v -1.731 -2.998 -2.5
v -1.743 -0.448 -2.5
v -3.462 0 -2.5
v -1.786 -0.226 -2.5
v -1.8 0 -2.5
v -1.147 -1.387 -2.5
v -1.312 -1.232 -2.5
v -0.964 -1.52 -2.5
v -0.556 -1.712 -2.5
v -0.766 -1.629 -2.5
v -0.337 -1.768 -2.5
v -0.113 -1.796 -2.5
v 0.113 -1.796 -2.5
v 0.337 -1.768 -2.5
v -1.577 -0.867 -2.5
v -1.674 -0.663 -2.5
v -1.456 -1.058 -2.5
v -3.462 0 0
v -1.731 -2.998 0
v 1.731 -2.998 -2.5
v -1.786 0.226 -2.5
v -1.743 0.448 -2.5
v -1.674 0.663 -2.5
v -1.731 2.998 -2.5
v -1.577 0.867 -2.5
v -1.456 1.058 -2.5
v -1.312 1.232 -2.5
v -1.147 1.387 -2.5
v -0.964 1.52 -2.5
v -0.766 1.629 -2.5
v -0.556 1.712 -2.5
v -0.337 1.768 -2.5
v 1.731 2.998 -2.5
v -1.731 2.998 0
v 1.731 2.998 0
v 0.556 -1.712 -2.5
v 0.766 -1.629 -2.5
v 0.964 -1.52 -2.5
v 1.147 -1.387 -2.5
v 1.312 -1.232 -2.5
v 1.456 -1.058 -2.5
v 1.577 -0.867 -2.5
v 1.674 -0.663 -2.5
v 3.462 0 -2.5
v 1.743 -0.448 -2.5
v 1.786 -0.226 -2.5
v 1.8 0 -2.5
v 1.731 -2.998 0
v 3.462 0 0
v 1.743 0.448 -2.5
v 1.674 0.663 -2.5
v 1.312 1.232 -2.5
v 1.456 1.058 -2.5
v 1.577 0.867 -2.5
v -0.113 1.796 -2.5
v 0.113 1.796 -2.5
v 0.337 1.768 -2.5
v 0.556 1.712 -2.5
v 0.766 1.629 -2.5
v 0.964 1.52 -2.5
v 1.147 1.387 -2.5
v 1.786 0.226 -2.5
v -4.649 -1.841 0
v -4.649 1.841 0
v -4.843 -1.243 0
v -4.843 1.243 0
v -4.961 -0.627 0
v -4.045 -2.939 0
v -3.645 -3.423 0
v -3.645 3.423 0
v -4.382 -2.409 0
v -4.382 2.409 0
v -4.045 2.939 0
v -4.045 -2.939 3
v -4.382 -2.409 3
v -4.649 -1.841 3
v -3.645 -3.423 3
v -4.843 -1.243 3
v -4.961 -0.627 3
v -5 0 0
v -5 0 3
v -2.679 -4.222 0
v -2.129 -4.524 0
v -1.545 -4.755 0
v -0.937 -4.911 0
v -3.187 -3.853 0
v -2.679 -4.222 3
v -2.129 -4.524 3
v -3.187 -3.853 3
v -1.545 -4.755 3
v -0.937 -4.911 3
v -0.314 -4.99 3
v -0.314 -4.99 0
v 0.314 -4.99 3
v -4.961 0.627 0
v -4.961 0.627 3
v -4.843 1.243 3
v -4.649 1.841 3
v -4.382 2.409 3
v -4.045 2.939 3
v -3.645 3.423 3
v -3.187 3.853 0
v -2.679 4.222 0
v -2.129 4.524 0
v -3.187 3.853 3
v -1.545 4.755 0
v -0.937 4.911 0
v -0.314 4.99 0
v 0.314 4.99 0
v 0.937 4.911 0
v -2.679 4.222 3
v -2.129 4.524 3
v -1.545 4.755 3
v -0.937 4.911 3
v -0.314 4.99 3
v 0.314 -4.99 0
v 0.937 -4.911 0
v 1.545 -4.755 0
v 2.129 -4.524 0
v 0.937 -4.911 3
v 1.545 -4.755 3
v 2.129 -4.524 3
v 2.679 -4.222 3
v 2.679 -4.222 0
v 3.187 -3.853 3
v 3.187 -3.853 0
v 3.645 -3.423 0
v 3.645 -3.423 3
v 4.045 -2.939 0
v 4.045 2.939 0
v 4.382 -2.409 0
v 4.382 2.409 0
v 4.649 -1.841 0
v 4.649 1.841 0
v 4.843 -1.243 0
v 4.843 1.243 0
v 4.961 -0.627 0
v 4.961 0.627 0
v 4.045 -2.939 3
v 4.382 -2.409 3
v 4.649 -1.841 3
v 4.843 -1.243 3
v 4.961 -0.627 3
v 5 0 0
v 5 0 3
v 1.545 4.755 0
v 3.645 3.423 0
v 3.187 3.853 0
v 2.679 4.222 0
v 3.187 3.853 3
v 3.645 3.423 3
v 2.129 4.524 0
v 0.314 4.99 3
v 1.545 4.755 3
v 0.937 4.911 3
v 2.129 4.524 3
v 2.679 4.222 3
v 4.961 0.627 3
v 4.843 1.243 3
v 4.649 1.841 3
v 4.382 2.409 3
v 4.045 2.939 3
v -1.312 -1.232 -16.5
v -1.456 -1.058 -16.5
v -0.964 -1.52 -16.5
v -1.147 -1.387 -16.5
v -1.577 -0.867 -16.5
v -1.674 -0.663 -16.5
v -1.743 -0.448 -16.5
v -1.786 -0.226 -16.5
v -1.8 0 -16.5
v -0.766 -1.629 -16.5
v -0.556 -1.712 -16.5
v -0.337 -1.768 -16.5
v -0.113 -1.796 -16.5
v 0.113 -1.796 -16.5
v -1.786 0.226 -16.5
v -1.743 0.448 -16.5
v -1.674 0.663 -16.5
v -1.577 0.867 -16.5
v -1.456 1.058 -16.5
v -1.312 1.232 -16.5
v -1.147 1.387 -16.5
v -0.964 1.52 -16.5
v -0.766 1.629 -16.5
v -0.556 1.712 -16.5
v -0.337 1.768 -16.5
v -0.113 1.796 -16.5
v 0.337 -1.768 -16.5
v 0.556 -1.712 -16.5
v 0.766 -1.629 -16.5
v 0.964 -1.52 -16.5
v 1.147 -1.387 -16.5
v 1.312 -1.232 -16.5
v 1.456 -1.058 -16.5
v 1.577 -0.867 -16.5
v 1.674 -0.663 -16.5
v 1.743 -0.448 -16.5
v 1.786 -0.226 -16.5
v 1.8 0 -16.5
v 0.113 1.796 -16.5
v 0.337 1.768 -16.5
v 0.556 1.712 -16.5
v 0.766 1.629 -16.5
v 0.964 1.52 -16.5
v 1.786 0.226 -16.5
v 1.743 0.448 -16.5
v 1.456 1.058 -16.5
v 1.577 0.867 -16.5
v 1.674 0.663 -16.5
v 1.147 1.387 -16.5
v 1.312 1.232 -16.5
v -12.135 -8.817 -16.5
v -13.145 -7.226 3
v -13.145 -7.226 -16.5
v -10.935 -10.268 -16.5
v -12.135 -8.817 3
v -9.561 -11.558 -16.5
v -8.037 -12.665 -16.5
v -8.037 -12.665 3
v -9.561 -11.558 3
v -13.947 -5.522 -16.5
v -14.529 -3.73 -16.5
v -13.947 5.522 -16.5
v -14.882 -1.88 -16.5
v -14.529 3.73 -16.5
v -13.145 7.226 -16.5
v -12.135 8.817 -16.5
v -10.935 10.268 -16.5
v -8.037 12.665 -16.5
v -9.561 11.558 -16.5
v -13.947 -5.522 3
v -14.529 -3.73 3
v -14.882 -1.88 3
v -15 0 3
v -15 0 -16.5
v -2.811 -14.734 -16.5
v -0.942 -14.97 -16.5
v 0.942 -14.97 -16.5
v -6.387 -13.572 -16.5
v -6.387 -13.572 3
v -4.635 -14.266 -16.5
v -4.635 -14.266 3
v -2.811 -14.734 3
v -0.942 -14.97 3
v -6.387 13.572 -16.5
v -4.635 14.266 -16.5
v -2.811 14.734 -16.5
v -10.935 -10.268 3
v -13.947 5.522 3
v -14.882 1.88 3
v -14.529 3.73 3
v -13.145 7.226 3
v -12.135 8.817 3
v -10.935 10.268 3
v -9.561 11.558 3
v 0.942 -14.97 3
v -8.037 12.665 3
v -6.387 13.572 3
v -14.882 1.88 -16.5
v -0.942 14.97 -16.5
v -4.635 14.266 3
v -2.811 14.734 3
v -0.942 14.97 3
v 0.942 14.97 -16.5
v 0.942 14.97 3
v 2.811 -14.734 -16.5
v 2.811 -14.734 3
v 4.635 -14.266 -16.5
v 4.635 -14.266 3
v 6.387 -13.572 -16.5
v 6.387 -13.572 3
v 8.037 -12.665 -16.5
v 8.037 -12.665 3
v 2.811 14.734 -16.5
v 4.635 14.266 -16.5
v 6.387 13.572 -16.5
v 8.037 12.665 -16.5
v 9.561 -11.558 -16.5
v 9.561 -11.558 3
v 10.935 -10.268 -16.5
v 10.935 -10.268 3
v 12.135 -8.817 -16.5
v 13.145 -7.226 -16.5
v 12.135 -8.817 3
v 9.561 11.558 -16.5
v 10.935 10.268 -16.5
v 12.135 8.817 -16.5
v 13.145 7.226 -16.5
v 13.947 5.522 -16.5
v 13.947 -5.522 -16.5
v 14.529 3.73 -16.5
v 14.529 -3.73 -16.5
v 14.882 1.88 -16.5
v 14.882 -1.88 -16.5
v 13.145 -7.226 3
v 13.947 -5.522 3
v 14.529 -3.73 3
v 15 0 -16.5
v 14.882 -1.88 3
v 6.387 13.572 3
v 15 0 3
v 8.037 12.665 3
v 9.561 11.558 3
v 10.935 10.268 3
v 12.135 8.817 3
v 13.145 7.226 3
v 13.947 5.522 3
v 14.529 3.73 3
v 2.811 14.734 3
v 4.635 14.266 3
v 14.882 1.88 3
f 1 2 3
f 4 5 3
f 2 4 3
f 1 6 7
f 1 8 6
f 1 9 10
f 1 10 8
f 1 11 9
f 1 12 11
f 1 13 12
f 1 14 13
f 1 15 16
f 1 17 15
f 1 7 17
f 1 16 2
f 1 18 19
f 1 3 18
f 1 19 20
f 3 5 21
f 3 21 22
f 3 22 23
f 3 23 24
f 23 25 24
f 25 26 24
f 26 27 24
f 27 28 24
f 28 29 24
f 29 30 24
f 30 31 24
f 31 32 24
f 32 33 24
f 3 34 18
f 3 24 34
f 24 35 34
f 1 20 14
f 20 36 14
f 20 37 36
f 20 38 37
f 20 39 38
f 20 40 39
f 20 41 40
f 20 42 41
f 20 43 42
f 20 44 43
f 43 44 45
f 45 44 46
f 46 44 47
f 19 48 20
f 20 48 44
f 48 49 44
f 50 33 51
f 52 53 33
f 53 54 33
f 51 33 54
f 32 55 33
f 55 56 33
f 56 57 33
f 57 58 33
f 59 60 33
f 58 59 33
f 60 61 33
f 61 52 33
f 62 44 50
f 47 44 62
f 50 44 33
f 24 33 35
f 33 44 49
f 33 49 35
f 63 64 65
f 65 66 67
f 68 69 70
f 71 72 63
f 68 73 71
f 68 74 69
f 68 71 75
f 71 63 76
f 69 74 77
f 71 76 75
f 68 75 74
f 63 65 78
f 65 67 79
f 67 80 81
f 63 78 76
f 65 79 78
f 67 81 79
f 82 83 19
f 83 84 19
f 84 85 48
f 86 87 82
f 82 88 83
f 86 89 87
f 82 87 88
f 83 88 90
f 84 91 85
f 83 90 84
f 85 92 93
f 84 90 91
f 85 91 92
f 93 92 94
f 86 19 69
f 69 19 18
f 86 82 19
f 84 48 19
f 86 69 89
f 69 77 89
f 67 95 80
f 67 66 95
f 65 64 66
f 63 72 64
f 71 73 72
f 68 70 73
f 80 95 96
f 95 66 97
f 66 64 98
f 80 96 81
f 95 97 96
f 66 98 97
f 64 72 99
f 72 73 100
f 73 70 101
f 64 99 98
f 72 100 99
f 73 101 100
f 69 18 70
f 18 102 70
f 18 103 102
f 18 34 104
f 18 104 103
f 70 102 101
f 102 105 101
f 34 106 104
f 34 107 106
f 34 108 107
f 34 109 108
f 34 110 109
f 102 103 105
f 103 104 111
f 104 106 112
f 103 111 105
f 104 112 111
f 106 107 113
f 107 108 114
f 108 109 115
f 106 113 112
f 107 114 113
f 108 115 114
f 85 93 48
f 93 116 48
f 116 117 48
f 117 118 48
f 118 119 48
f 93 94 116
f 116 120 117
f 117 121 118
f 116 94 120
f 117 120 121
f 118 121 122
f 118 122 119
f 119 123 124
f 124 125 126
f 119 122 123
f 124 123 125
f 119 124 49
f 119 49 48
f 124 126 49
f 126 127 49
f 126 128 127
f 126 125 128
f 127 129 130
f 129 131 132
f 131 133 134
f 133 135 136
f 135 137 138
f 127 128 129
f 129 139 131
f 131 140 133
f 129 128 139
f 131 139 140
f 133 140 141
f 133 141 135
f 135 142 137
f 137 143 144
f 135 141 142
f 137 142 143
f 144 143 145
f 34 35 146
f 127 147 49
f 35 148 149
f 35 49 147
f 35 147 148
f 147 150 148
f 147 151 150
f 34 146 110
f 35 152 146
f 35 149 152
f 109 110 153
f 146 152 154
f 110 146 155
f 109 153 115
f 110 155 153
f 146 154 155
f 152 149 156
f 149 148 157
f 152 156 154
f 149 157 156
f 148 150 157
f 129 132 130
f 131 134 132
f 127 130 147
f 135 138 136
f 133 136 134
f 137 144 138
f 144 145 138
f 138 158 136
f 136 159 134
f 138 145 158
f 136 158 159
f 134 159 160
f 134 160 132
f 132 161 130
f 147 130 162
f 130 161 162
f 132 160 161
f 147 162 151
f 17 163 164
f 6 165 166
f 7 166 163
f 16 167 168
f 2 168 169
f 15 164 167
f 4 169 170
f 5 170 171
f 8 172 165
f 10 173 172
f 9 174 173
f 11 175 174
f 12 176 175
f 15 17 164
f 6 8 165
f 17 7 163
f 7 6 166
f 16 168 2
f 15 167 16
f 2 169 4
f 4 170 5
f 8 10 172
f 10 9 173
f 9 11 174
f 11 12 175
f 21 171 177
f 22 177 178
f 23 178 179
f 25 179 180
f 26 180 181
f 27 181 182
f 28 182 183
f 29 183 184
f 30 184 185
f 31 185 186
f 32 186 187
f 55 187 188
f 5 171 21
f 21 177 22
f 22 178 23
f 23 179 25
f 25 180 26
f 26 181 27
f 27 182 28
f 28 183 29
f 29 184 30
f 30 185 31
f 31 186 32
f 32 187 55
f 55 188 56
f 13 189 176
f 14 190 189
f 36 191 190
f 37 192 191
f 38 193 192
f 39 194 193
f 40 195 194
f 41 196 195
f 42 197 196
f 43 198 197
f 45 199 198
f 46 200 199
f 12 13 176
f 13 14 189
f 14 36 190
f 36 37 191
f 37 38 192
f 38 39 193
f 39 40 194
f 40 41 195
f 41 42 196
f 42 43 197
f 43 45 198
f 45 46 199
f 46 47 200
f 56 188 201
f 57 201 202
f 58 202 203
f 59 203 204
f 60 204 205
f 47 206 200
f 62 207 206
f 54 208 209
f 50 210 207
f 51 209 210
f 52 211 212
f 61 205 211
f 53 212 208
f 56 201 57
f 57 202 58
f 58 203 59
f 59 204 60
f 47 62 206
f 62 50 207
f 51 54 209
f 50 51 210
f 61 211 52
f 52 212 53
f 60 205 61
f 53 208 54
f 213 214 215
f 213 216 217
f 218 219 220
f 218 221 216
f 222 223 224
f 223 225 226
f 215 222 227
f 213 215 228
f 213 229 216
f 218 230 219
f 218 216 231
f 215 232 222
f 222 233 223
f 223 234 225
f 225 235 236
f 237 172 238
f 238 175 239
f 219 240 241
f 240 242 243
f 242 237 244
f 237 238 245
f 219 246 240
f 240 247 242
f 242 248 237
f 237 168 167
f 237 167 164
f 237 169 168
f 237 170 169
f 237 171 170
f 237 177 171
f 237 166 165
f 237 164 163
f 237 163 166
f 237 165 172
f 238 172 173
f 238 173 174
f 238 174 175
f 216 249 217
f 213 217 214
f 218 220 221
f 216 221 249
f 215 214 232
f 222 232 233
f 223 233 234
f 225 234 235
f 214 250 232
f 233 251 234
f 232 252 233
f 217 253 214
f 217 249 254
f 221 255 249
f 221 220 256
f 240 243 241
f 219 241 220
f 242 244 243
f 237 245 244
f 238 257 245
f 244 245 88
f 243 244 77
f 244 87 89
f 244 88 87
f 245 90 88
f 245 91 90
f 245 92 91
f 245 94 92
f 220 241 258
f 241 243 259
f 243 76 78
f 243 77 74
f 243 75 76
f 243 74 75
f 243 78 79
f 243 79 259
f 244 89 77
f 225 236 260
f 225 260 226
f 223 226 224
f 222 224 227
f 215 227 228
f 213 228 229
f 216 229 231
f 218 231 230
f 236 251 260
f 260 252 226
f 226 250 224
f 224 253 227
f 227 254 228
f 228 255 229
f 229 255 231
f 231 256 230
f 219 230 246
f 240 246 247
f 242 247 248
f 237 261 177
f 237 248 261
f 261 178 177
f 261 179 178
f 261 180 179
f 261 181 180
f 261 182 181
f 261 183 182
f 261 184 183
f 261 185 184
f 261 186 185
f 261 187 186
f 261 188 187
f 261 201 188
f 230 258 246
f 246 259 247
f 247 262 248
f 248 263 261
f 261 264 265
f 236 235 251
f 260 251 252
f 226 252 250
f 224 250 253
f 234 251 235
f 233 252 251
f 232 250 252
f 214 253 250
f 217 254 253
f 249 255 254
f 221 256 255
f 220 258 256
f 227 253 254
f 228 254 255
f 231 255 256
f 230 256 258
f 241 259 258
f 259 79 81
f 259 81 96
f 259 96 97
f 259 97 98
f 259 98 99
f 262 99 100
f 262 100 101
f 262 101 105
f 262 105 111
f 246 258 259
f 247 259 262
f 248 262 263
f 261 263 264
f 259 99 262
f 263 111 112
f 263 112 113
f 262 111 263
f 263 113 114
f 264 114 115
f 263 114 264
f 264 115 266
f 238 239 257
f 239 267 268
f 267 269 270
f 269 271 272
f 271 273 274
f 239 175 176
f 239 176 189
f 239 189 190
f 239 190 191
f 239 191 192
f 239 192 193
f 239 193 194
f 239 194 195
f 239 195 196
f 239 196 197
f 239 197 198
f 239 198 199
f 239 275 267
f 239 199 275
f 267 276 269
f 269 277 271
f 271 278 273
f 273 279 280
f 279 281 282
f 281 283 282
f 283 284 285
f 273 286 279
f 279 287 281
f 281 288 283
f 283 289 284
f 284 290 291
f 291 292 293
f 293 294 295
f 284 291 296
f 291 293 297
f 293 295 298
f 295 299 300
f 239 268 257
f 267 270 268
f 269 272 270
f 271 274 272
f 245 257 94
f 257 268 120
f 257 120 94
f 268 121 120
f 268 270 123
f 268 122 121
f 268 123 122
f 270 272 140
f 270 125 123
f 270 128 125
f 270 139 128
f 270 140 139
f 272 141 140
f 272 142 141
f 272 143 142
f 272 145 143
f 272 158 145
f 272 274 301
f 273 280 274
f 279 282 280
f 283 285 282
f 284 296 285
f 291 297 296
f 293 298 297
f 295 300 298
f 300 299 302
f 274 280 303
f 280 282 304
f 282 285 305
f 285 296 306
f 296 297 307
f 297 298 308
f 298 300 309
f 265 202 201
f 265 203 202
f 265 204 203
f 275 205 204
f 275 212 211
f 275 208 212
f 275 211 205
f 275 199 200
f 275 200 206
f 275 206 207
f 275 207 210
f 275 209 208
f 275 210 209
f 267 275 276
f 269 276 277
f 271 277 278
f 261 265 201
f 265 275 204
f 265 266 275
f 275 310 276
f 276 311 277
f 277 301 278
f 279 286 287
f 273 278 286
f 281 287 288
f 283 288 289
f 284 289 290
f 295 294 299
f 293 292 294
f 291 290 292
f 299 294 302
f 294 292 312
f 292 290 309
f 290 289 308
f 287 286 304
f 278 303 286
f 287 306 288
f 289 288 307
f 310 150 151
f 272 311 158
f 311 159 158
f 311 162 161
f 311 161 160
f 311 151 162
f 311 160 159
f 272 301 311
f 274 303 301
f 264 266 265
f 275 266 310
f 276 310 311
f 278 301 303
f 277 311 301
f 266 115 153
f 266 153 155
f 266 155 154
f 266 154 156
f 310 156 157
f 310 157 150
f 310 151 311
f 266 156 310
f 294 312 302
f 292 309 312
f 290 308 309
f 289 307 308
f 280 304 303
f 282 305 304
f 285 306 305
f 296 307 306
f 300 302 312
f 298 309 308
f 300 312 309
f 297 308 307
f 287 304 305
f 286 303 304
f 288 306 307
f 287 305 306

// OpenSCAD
$fn = 50;

difference() {
	union() {
		translate(v = [0, 0, -16.5]) {
			cylinder(h = 19.5, r = 15.0);
		}
	}
	union() {
		translate(v = [0, 0, 0]) {
			rotate(a = [0, 0, 0]) {
				difference() {
					union() {
						translate(v = [0, 0, -2.5]) {
							linear_extrude(height = 2.5) {
								polygon(points = [[3.4619999999999997, 0.0], [1.7310000000000003, 2.9981799479017264], [-1.7309999999999992, 2.9981799479017264], [-3.4619999999999997, 4.2397272186481365e-16], [-1.7310000000000014, -2.998179947901726], [1.7309999999999977, -2.9981799479017277]]);
							}
						}
					}
					union();
				}
			}
		}
		#cylinder(h = 3, r = 5.0);
		#translate(v = [0, 0, -100.0]) {
			cylinder(h = 200, r = 1.8);
		}
	}
}
